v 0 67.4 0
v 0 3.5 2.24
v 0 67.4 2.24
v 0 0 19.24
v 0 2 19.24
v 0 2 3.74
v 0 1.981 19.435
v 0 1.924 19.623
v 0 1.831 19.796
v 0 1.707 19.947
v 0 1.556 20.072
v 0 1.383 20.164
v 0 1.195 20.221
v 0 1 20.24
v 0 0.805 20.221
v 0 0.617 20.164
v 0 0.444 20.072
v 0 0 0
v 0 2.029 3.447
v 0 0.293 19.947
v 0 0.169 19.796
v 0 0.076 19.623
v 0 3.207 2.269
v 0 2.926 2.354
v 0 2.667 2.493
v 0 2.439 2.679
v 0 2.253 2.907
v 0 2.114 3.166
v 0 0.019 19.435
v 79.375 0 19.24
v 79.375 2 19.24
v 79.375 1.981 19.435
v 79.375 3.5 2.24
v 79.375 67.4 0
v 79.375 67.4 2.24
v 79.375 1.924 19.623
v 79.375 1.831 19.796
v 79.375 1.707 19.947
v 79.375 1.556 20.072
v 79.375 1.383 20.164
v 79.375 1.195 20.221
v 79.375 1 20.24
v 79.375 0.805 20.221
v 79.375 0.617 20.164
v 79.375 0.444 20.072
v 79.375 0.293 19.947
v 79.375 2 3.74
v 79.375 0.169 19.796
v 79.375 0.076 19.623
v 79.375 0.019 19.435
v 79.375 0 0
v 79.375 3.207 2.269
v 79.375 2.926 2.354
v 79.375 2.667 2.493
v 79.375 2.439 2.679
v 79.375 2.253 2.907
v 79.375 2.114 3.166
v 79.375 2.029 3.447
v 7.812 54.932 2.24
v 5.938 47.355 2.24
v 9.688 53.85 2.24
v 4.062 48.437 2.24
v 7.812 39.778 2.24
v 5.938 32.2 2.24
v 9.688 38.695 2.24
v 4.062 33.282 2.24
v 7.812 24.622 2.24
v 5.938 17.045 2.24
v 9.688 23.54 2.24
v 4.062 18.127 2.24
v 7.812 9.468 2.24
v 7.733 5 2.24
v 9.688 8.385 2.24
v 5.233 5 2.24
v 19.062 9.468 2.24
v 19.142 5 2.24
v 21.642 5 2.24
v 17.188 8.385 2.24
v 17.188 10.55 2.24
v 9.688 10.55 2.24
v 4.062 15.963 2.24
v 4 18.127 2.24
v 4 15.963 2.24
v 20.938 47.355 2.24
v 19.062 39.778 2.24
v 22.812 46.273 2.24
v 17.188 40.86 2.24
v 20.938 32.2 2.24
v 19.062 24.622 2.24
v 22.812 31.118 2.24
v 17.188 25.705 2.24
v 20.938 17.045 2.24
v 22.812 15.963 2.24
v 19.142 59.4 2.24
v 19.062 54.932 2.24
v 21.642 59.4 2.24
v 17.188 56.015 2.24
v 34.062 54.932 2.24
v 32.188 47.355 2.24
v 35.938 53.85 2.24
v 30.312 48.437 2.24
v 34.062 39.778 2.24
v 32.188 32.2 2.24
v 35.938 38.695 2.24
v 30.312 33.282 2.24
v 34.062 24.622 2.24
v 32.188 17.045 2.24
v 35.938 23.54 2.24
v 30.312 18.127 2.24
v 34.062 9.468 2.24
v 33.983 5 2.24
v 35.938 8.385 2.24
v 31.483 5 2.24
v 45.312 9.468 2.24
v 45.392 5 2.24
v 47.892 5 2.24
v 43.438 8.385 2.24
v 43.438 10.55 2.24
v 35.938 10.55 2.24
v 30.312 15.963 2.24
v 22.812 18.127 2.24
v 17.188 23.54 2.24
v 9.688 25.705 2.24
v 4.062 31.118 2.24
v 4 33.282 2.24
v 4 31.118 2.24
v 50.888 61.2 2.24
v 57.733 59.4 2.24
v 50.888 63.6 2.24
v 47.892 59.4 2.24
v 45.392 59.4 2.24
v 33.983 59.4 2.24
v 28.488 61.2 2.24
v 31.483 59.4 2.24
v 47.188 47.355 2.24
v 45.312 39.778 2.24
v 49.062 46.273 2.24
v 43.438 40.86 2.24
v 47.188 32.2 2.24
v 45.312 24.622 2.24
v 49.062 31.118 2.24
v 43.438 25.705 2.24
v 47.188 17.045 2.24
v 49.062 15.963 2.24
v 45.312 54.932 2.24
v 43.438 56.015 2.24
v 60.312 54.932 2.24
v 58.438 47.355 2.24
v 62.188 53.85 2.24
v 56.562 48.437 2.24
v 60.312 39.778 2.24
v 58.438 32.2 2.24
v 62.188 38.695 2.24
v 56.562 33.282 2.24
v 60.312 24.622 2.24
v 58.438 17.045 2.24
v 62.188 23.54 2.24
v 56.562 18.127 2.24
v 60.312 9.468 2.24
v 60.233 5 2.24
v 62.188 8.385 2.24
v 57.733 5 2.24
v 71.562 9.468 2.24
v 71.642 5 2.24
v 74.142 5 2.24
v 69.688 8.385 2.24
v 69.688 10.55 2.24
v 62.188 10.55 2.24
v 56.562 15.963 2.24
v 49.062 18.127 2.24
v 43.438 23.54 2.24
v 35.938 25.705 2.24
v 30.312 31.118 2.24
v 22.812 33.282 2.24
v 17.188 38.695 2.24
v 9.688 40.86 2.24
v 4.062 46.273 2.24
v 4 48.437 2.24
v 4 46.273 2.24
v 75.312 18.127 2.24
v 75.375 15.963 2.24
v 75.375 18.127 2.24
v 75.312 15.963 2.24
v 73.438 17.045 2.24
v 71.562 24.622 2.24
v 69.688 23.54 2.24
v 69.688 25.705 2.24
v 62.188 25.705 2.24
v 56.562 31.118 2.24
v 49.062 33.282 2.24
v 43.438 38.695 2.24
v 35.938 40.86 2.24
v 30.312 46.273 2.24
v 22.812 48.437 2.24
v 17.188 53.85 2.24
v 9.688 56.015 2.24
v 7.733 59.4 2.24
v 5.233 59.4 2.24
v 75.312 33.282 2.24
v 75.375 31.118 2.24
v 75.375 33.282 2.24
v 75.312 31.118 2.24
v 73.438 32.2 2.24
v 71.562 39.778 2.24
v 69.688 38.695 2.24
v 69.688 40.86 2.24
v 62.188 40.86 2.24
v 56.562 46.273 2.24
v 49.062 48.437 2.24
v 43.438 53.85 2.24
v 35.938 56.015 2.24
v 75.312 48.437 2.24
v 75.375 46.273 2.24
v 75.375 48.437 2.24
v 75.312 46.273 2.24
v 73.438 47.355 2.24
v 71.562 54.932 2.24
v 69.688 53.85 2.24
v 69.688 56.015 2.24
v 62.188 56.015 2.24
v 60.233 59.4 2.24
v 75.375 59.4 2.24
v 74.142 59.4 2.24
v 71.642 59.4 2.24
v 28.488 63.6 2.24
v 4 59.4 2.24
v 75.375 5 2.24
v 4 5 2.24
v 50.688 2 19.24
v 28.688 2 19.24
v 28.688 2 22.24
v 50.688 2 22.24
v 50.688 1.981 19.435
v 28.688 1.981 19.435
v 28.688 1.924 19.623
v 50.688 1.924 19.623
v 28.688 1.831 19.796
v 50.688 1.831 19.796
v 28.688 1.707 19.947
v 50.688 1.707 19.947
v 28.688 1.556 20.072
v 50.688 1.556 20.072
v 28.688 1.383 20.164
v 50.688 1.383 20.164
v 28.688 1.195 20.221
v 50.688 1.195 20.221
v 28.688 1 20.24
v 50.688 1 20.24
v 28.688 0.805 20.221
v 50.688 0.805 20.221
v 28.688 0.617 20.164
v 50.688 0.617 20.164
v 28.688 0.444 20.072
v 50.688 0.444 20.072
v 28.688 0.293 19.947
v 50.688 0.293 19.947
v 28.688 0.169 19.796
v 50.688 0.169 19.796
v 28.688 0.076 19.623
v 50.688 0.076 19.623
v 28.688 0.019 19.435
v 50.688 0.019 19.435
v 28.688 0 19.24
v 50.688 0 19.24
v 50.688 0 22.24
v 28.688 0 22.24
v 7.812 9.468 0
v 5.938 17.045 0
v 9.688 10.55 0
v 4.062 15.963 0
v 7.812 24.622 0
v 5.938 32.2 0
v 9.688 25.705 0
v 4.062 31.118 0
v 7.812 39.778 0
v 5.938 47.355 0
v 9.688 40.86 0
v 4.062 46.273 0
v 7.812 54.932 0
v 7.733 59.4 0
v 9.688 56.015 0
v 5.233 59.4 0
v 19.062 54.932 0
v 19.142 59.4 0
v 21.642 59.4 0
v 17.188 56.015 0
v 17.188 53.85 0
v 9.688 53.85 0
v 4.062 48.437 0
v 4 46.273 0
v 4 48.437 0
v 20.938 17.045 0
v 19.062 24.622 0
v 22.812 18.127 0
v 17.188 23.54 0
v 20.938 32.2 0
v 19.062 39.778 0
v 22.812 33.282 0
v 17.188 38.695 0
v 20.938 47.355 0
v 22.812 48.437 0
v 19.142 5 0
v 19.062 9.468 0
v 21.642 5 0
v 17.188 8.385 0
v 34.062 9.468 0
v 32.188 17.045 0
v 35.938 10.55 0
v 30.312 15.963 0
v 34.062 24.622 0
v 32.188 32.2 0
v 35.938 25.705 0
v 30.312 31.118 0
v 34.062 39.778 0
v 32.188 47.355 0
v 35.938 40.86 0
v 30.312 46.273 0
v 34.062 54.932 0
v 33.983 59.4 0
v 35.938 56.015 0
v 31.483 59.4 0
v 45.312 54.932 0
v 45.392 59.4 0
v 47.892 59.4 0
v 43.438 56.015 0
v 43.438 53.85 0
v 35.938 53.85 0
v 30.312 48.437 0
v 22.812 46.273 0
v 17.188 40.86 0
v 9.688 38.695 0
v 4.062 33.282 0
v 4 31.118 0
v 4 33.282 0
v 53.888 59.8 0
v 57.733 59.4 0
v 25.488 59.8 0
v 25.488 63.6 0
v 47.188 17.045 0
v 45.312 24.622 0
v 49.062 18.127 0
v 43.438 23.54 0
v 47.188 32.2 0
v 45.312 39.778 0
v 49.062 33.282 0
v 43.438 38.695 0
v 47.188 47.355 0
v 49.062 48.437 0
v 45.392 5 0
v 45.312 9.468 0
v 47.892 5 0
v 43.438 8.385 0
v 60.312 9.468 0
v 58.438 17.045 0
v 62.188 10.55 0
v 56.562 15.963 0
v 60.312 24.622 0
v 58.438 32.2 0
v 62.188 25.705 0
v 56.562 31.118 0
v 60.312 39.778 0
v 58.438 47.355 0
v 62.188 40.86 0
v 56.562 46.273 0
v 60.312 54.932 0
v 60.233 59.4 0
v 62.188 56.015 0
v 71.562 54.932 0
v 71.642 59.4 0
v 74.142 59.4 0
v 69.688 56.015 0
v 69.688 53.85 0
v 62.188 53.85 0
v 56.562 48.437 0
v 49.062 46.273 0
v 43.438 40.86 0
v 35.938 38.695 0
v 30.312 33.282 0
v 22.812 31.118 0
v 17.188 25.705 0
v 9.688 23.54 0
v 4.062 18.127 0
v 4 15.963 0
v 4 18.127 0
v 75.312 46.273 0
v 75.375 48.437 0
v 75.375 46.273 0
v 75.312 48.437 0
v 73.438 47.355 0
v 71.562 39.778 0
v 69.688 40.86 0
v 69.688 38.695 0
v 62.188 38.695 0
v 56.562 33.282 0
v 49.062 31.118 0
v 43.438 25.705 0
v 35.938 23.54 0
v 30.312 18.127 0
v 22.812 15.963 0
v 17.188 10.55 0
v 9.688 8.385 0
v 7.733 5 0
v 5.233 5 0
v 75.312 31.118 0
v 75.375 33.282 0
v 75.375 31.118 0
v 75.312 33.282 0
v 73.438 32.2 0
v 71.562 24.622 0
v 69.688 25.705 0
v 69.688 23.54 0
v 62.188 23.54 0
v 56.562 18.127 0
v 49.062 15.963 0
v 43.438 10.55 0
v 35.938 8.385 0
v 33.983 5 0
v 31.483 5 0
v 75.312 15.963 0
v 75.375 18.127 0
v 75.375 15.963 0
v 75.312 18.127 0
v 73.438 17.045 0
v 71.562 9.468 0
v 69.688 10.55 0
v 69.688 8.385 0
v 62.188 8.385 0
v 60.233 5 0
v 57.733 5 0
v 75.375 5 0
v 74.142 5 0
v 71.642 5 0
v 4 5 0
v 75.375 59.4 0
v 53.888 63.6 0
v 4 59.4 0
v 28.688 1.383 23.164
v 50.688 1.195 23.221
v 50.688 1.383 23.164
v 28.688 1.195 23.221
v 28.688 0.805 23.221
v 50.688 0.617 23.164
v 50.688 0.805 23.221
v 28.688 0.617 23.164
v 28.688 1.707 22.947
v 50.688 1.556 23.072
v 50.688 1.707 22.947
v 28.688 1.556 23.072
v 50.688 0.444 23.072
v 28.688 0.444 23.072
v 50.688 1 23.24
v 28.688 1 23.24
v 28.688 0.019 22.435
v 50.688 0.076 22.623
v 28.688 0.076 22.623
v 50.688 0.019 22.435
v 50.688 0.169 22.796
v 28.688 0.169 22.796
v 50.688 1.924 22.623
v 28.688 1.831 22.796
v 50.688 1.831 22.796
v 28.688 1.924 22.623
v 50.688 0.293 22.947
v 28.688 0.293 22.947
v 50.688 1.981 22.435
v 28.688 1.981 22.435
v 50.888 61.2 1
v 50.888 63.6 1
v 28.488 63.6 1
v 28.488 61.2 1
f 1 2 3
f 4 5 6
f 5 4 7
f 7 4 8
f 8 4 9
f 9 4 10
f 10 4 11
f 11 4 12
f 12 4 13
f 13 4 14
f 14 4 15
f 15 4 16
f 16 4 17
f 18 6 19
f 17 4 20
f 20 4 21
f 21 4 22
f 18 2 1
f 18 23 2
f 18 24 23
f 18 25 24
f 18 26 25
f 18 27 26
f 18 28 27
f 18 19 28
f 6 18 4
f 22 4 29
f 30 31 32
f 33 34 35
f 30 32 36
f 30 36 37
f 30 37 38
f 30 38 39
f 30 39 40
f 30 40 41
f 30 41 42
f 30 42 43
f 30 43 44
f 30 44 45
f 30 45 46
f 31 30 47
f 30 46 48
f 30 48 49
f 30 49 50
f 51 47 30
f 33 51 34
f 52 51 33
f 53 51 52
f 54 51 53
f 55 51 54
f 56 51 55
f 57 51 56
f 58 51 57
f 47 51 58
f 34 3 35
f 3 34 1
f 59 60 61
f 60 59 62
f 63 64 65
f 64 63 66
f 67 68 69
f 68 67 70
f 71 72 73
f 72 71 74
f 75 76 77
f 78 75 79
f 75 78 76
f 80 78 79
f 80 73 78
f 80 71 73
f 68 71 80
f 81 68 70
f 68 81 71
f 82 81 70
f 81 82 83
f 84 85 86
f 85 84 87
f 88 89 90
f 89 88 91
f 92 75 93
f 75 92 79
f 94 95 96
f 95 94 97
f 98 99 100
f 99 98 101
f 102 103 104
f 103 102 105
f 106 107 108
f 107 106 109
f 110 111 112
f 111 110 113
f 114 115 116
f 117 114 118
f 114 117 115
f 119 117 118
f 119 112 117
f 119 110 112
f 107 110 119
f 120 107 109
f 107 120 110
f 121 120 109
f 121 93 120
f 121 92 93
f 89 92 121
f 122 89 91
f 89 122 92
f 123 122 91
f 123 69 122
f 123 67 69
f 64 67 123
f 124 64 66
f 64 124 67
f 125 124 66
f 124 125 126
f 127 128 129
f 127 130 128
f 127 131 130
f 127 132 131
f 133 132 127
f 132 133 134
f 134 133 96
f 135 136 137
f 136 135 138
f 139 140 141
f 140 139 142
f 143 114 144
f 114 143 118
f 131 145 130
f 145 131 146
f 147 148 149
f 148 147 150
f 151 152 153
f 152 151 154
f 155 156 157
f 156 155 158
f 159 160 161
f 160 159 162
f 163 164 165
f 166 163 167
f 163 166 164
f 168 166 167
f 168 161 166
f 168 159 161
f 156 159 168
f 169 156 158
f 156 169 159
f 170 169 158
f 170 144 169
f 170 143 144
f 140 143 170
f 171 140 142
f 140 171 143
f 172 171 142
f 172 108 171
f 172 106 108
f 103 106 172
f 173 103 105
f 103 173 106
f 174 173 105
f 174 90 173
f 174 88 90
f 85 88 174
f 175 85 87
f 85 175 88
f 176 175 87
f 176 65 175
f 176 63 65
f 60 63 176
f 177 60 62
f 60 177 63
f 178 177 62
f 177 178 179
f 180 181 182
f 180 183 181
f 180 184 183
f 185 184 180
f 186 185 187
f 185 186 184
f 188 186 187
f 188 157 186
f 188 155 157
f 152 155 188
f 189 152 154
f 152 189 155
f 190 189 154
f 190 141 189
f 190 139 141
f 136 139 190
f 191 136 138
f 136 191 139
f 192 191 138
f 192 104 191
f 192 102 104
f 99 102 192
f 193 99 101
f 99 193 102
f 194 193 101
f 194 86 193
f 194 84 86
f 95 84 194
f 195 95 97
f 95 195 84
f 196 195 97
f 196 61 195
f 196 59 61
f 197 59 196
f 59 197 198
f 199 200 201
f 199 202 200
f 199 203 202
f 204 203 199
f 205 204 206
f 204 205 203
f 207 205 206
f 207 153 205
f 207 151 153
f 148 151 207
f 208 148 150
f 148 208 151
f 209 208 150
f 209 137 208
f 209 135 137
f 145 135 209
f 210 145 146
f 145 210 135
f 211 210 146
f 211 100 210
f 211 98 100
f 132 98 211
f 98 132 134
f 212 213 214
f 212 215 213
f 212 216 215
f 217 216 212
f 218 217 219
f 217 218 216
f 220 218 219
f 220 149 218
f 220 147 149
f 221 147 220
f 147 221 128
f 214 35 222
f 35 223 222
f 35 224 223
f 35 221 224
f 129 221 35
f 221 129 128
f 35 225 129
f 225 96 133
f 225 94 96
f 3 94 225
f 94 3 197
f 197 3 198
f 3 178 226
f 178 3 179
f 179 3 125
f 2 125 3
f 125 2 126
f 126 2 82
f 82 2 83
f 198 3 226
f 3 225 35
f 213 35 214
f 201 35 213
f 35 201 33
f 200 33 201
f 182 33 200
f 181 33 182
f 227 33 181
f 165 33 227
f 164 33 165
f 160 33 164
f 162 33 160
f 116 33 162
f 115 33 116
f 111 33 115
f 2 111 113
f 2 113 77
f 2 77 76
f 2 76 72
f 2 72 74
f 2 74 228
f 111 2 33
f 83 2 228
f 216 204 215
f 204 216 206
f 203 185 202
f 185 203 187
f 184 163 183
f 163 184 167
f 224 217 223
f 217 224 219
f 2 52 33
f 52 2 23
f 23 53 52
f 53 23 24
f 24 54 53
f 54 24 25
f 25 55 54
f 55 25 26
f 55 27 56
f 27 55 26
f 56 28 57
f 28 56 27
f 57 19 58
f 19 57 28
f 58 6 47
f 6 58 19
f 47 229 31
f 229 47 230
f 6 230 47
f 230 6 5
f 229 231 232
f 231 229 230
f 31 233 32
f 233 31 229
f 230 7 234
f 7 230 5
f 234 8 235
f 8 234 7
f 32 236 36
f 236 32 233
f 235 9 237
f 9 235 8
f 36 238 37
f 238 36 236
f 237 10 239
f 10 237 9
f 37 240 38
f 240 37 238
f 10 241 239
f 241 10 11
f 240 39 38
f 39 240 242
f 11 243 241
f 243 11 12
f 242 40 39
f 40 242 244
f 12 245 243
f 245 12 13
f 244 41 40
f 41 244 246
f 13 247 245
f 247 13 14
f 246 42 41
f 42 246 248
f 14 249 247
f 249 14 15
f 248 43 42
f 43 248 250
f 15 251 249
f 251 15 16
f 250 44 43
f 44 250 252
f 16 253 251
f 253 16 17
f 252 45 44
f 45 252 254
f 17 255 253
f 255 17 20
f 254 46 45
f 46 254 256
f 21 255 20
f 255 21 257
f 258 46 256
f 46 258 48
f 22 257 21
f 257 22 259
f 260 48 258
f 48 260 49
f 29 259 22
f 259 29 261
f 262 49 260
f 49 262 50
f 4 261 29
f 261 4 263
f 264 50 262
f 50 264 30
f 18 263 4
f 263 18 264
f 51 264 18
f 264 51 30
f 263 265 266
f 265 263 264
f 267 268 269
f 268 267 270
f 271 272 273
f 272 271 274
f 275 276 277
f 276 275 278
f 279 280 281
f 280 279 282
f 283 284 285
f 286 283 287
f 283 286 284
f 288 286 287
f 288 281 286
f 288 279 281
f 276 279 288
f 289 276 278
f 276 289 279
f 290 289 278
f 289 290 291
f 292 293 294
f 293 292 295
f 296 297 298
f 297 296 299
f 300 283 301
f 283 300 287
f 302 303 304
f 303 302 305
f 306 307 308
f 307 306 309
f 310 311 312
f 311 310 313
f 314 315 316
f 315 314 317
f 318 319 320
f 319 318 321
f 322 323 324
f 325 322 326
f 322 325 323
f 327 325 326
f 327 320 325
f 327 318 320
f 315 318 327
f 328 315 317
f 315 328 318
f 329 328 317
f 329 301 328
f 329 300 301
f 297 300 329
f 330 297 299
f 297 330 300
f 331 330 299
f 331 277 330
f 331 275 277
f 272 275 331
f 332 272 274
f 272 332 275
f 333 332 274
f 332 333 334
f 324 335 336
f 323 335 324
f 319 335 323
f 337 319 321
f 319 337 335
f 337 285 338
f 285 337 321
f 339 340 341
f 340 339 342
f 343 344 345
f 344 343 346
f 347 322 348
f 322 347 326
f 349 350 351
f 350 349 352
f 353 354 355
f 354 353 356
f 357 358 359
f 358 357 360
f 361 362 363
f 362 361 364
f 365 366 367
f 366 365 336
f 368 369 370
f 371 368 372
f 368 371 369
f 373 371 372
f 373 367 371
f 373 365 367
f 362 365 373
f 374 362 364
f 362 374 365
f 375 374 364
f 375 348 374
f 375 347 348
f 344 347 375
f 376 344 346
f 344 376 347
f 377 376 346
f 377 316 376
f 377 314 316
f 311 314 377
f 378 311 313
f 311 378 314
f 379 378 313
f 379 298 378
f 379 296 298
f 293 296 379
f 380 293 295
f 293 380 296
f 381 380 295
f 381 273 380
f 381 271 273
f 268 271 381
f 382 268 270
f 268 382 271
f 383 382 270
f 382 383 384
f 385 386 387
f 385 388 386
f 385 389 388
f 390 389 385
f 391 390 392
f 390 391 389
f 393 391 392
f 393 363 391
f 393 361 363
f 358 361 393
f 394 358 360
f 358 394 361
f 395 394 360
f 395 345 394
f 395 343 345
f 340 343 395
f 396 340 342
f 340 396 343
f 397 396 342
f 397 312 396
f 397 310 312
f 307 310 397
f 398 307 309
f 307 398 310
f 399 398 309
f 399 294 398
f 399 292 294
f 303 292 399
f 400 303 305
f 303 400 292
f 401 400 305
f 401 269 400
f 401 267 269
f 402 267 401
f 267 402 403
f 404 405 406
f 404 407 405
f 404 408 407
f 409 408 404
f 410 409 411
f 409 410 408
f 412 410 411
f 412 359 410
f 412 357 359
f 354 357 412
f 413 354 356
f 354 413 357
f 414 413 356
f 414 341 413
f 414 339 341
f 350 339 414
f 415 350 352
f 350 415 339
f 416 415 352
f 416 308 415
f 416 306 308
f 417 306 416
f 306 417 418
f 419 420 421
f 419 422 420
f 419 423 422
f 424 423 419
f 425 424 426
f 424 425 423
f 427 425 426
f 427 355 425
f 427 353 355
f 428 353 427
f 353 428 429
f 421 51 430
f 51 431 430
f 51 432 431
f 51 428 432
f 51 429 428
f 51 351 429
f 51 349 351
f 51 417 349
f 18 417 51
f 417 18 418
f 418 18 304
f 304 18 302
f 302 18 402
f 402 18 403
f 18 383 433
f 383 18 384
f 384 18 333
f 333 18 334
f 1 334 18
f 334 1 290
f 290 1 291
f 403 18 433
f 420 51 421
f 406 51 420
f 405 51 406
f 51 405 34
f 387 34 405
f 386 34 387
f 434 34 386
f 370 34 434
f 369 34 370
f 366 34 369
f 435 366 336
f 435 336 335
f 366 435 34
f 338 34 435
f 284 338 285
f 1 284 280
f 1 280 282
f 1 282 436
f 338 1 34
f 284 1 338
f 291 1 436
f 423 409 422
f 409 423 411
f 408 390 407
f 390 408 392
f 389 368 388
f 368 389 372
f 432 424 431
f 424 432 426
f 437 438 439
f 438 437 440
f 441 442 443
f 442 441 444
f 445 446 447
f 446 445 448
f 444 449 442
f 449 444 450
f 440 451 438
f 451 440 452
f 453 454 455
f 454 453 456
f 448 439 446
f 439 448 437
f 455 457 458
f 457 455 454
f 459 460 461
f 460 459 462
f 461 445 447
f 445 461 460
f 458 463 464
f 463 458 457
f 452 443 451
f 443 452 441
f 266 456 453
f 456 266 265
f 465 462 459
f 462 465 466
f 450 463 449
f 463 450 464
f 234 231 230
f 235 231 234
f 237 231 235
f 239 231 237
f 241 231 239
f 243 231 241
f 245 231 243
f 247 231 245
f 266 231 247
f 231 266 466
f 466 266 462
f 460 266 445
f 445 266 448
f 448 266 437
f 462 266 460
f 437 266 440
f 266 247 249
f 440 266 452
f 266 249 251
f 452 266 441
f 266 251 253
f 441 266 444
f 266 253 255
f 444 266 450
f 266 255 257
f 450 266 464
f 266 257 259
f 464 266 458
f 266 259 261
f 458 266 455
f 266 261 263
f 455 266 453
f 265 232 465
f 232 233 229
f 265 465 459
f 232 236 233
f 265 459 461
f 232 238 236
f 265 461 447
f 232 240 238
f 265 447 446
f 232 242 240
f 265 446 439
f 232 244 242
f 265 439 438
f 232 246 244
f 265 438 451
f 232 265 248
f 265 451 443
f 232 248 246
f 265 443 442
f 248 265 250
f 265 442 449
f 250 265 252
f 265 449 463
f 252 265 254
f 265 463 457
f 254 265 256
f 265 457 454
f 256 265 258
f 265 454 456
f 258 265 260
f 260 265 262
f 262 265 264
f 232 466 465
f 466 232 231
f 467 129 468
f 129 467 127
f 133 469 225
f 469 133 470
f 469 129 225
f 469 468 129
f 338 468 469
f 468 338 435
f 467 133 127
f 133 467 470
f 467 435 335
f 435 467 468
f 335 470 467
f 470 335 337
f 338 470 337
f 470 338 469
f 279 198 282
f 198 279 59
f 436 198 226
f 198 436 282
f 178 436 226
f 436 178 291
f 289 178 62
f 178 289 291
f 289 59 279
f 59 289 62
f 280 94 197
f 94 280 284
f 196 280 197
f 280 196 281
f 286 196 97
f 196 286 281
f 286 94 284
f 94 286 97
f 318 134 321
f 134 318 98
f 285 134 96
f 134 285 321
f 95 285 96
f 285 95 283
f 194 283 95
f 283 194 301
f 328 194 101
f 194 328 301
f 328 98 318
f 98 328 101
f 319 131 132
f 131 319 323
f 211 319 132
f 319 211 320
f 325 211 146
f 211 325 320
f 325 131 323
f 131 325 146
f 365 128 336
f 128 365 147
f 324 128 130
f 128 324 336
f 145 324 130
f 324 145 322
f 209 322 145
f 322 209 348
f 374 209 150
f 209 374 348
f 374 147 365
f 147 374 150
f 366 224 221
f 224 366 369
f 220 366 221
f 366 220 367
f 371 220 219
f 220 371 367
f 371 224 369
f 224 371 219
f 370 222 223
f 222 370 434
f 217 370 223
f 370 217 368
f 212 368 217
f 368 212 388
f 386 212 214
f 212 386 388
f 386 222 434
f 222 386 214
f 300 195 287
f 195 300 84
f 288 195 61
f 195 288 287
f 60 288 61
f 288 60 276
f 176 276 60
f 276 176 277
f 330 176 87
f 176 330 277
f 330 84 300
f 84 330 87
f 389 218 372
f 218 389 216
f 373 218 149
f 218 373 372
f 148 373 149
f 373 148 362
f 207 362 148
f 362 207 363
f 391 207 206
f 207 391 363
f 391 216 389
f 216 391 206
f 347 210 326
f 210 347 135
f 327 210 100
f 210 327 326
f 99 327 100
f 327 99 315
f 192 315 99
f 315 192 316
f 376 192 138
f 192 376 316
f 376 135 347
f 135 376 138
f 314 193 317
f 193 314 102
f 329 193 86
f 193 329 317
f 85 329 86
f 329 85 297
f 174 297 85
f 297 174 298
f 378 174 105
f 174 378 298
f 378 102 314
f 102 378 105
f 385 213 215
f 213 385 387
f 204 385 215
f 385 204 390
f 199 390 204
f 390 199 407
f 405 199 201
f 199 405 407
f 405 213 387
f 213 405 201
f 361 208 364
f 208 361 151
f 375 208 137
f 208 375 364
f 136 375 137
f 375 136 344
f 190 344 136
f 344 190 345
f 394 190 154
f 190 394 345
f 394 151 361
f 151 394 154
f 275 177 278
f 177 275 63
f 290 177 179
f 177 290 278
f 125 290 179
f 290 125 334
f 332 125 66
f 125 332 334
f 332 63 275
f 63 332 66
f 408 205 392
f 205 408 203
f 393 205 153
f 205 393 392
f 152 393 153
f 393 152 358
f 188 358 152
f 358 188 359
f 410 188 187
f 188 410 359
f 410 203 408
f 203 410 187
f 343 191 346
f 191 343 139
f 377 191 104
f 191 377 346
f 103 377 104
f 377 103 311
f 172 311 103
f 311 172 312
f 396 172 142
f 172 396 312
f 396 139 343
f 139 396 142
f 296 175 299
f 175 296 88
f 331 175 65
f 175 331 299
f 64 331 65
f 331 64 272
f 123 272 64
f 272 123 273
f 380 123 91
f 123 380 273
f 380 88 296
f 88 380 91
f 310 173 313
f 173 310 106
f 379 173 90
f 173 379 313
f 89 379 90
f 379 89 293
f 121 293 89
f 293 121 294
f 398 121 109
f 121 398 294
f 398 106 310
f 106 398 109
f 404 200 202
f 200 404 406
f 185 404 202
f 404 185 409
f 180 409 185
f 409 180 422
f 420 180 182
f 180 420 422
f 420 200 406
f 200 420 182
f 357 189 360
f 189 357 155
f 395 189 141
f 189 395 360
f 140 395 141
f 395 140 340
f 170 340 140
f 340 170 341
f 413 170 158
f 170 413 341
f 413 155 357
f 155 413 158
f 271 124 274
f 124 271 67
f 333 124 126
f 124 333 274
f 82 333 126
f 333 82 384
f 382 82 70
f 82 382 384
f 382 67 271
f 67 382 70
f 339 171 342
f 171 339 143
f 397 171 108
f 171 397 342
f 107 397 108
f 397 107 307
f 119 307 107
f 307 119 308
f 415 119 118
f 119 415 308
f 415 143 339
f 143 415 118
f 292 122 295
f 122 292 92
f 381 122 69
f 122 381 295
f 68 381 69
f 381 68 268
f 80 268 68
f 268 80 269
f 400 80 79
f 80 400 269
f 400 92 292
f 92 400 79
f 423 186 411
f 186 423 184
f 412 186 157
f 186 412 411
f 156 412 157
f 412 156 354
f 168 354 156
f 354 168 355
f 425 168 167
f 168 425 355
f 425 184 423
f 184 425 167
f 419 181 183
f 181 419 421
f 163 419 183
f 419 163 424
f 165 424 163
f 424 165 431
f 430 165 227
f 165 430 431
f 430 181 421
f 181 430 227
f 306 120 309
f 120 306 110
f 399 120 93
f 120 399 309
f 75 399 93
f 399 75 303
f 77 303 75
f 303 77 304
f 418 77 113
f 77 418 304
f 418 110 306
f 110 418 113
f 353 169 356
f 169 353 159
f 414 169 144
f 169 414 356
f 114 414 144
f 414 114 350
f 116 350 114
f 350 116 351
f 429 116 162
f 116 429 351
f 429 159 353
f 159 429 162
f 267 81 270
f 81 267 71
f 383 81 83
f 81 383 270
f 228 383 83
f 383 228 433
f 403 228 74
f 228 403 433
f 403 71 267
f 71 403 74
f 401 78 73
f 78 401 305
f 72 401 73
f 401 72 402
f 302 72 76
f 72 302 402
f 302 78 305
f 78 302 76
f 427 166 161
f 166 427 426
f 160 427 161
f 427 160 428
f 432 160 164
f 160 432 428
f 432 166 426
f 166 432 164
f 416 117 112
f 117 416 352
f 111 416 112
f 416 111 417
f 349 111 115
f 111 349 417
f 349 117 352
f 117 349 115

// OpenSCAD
// Wake flat v2: built on the v6 design. One-piece L riser printed flat, plate on the bed, lip standing up.
// Kept exactly from v6: plate size (65.4 mm deep x width), 2.24 mm plate (2 + 0.24 extra back layers),
//   hex size/gap/borders/grid positions, the small W, and the lip size (2 mm thick, 20 mm deep from the front face).
// New: wall tabs on the lip top that rest by gravity in slots near the free edge of the next plate.
// No ridges, channels or bands.
//
// Axes: x = width, y = plate depth (y=0 is the lip end of the plate, v6's z_bot end), z = up (plate front face up).
// The x axis is mirrored relative to v6's panel coordinates so the part is the same physical part, not a mirror image.

// Extension piece: exactly 3 1/8 in wide, one tab/slot at centre, no W.
width       = 3.125 * 25.4;                // 79.375 mm

// v6 plate: back_height 70.5 - panel_top_trim 1.0 - boss_h 4.1
panel_h  = 65.4;
edge_extra = 2;                           // extra solid border past the v6 plate edge (free-edge side only); hex grid and slot positions unchanged
plate_d  = panel_h + edge_extra;
wall     = 2;                             // lip thickness (v6 `wall`)
back_extra = 0.24;                        // v6: 2 * 0.12 extra layers on the back
plate_t  = wall + back_extra;
bottom_lip_depth = 20;                    // v6 lip depth, measured from the back face's y datum
lip_h    = bottom_lip_depth + back_extra; // lip height from the bed: sticks out 18 mm past the front face, same as v6
fillet_in = 1.5;                          // where the lip meets the plate

// hex grid, same as v6
hex_size   = 15;
hex_gap    = 2.5;
border_x   = 4;
border_top = 6;
band_h     = 5;                           // v6 band_v 2 + ramp_h 3: hex area starts this far from the lip end

// small W, same as v6: one hex at the far corner, max x and max v6-z
small_w_on     = false;
small_w_w      = 0.85;
small_w_h      = 0.62;
small_w_stroke = 2.0;
letter_flip    = true;

// bottom piece only: round the free-edge corner at max x (bottom right) for the case's rounded inner corner
bottom_piece  = false;
corner_cut_r  = 6.35;                     // 1/4 in

// tabs on the lip top, slots in the plate
tab_len     = 22;
tab_h       = 3;                          // tabs stick up past lip_h
tab_clear   = 0.2;                        // slot clearance per side
slot_from_edge = 3;                       // free edge to slot centre line (hex area ends border_top = 6 from the edge)
ramp_depth = 1.0;                         // funnel depth into the plate from the back face, leaves plate_t - ramp_depth straight
ramp_run_y = 1.4;                         // flare on the hex side of each slot only, none on the free-edge side (stops short of the hex area at 1.8 mm)
ramp_run_x = 3.0;                         // flare past each end, gentler lead-in

// shingle step used by the storage case: how far each piece sits along y from the one below when stacked tight
// (the lip wall and its fillet need 3.5 mm, plus 0.1)
stack_step = 3.6;
assert(stack_step >= wall + fillet_in, "stack_step too small to clear the lip wall and fillet");

tab_xs = [width / 2];                     // single tab, centred
left_end  = tab_xs[0] - (tab_len / 2 + tab_clear);   // free stretches either side of the slots, where the text goes
right_beg = tab_xs[0] + (tab_len / 2 + tab_clear);

// engraved logo and version on the front face, in the solid strip along the free edge, either side of the slots
engrave      = false;
brand_text   = "BlueBytes";
version_text = "Wake v30";
tag_size     = 3.5;
tag_depth    = 0.7;
tag_font     = "Liberation Sans:style=Bold";

$fn = 32;

function cells(w, h) =
    let (pitch = hex_size + hex_gap, step_x = pitch * 0.75, step_z = pitch * 0.866,
         cx = w / 2, cz = h / 2,
         ncols = ceil(w / (2 * step_x)) + 2, nrows = ceil(h / (2 * step_z)) + 2)
    [for (col = [-ncols : ncols]) for (row = [-nrows : nrows])
        let (parity = ((col % 2) + 2) % 2,
             x = cx + col * step_x,
             z = cz + row * step_z + (parity == 0 ? 0 : step_z / 2))
        [x, z]];

function corner_cell(w, h) =
    let (c = [for (p = cells(w, h)) if (p[0] - hex_size / 2 >= 0 && p[0] + hex_size / 2 <= w && p[1] - hex_size / 2 >= 0 && p[1] + hex_size / 2 <= h) p],
         best = max([for (p = c) p[0] + p[1]]))
    [for (p = c) if (p[0] + p[1] == best) p][0];

module w_shape2d(lw, lh, stroke) {
    f = letter_flip ? -1 : 1;
    pts = [[-lw / 2, f * lh / 2], [-lw / 4, -f * lh / 2], [0, f * lh * 0.15], [lw / 4, -f * lh / 2], [lw / 2, f * lh / 2]];
    for (i = [0 : 3]) hull() {
        translate(pts[i]) circle(d = stroke, $fn = 24);
        translate(pts[i + 1]) circle(d = stroke, $fn = 24);
    }
}

// the v6 hex pattern as a 2D cut; the cell grid is symmetric in x, only the W cell is mirrored
module hex_cut2d(w, h) {
    cc = corner_cell(w, h);
    difference() {
        intersection() {
            for (c = cells(w, h)) translate(c) circle(d = hex_size, $fn = 6);
            square([w, h]);
        }
        if (small_w_on)
            translate([w - cc[0], cc[1]]) w_shape2d(hex_size * small_w_w, hex_size * small_w_h, small_w_stroke);
    }
}

// (y, z) profile of plate + lip + fillet, extruded along x
module body() {
    r = wall / 2;
    rotate([90, 0, 90]) linear_extrude(width) union() {
        square([plate_d, plate_t]);
        square([wall, lip_h - r]);
        translate([r, lip_h - r]) circle(r = r, $fn = 32);       // rounded lip top, as in v6
        difference() {
            translate([wall - 0.01, plate_t - 0.01]) square([fillet_in + 0.01, fillet_in + 0.01]);
            translate([wall + fillet_in, plate_t + fillet_in]) circle(r = fillet_in);
        }
    }
}

module tabs() {
    r = wall / 2;
    z0 = lip_h - r;                       // starts inside the rounded lip top
    for (x = tab_xs)
        translate([x - tab_len / 2, 0, 0]) rotate([90, 0, 90]) linear_extrude(tab_len) union() {
            translate([0, z0]) square([wall, tab_h]);                         // up to where the round starts
            translate([r, lip_h + tab_h - r]) circle(r = r, $fn = 32);        // rounded tab top, same radius as the lip
        }
}

module slots() {
    sw = wall + 2 * tab_clear;
    sl = tab_len + 2 * tab_clear;
    y0 = panel_h - slot_from_edge - sw / 2;
    for (x = tab_xs) {
        translate([x - sl / 2, y0, -1]) cube([sl, sw, plate_t + 2]);
        // lead-in funnel on the back face (z=0, the bed side), the face the tab enters from
        hull() {
            translate([x - sl / 2, y0, ramp_depth - 0.01]) cube([sl, sw, 0.01]);
            translate([x - sl / 2 - ramp_run_x, y0 - ramp_run_y, -0.01]) cube([sl + 2 * ramp_run_x, sw + ramp_run_y, 0.01]);
        }
    }
}

// text is centred on its cap height in the solid strip between the hex area and the free edge
// (cap height of Liberation Sans Bold = 0.954 x size; the text is turned 180 deg, so its up is -y)
cap_h     = 0.954 * tag_size;
strip_mid = ((panel_h - border_top) + plate_d) / 2;
module tag_text(txt, x_pos) {
    translate([x_pos, strip_mid + cap_h / 2, plate_t - tag_depth]) rotate([0, 0, 180])
        linear_extrude(height = tag_depth + 0.5)
            text(txt, size = tag_size, font = tag_font, halign = "center", valign = "baseline");
}

module corner_cutter() {
    translate([width - corner_cut_r, plate_d - corner_cut_r, -1]) linear_extrude(plate_t + 2)
        difference() {
            square([corner_cut_r + 1, corner_cut_r + 1]);
            circle(r = corner_cut_r, $fn = 64);
        }
}

module riser() {
    difference() {
        union() { body(); tabs(); }
        translate([border_x, band_h, -1]) linear_extrude(plate_t + 2)
            hex_cut2d(width - 2 * border_x, panel_h - band_h - border_top);
        slots();
        if (bottom_piece) corner_cutter();
        if (engrave) {
            tag_text(brand_text, (border_x + left_end) / 2);
            tag_text(version_text, (right_beg + width - border_x) / 2);
        }
    }
}

// two boxes over the engraved text areas, in the riser's own coordinates, to load into the slicer as modifiers
// (ironing is a slicer setting; this just marks where). "riser" | "iron_modifiers"
output = "riser";
module iron_boxes() {
    for (x0 = [border_x + 1, right_beg + 1])
        translate([x0, panel_h - border_top, 0])
            cube([left_end - border_x - 2, plate_d - (panel_h - border_top), plate_t + 0.7]);
}

render_riser = true;
if (render_riser) { if (output == "iron_modifiers") iron_boxes(); else riser(); }
